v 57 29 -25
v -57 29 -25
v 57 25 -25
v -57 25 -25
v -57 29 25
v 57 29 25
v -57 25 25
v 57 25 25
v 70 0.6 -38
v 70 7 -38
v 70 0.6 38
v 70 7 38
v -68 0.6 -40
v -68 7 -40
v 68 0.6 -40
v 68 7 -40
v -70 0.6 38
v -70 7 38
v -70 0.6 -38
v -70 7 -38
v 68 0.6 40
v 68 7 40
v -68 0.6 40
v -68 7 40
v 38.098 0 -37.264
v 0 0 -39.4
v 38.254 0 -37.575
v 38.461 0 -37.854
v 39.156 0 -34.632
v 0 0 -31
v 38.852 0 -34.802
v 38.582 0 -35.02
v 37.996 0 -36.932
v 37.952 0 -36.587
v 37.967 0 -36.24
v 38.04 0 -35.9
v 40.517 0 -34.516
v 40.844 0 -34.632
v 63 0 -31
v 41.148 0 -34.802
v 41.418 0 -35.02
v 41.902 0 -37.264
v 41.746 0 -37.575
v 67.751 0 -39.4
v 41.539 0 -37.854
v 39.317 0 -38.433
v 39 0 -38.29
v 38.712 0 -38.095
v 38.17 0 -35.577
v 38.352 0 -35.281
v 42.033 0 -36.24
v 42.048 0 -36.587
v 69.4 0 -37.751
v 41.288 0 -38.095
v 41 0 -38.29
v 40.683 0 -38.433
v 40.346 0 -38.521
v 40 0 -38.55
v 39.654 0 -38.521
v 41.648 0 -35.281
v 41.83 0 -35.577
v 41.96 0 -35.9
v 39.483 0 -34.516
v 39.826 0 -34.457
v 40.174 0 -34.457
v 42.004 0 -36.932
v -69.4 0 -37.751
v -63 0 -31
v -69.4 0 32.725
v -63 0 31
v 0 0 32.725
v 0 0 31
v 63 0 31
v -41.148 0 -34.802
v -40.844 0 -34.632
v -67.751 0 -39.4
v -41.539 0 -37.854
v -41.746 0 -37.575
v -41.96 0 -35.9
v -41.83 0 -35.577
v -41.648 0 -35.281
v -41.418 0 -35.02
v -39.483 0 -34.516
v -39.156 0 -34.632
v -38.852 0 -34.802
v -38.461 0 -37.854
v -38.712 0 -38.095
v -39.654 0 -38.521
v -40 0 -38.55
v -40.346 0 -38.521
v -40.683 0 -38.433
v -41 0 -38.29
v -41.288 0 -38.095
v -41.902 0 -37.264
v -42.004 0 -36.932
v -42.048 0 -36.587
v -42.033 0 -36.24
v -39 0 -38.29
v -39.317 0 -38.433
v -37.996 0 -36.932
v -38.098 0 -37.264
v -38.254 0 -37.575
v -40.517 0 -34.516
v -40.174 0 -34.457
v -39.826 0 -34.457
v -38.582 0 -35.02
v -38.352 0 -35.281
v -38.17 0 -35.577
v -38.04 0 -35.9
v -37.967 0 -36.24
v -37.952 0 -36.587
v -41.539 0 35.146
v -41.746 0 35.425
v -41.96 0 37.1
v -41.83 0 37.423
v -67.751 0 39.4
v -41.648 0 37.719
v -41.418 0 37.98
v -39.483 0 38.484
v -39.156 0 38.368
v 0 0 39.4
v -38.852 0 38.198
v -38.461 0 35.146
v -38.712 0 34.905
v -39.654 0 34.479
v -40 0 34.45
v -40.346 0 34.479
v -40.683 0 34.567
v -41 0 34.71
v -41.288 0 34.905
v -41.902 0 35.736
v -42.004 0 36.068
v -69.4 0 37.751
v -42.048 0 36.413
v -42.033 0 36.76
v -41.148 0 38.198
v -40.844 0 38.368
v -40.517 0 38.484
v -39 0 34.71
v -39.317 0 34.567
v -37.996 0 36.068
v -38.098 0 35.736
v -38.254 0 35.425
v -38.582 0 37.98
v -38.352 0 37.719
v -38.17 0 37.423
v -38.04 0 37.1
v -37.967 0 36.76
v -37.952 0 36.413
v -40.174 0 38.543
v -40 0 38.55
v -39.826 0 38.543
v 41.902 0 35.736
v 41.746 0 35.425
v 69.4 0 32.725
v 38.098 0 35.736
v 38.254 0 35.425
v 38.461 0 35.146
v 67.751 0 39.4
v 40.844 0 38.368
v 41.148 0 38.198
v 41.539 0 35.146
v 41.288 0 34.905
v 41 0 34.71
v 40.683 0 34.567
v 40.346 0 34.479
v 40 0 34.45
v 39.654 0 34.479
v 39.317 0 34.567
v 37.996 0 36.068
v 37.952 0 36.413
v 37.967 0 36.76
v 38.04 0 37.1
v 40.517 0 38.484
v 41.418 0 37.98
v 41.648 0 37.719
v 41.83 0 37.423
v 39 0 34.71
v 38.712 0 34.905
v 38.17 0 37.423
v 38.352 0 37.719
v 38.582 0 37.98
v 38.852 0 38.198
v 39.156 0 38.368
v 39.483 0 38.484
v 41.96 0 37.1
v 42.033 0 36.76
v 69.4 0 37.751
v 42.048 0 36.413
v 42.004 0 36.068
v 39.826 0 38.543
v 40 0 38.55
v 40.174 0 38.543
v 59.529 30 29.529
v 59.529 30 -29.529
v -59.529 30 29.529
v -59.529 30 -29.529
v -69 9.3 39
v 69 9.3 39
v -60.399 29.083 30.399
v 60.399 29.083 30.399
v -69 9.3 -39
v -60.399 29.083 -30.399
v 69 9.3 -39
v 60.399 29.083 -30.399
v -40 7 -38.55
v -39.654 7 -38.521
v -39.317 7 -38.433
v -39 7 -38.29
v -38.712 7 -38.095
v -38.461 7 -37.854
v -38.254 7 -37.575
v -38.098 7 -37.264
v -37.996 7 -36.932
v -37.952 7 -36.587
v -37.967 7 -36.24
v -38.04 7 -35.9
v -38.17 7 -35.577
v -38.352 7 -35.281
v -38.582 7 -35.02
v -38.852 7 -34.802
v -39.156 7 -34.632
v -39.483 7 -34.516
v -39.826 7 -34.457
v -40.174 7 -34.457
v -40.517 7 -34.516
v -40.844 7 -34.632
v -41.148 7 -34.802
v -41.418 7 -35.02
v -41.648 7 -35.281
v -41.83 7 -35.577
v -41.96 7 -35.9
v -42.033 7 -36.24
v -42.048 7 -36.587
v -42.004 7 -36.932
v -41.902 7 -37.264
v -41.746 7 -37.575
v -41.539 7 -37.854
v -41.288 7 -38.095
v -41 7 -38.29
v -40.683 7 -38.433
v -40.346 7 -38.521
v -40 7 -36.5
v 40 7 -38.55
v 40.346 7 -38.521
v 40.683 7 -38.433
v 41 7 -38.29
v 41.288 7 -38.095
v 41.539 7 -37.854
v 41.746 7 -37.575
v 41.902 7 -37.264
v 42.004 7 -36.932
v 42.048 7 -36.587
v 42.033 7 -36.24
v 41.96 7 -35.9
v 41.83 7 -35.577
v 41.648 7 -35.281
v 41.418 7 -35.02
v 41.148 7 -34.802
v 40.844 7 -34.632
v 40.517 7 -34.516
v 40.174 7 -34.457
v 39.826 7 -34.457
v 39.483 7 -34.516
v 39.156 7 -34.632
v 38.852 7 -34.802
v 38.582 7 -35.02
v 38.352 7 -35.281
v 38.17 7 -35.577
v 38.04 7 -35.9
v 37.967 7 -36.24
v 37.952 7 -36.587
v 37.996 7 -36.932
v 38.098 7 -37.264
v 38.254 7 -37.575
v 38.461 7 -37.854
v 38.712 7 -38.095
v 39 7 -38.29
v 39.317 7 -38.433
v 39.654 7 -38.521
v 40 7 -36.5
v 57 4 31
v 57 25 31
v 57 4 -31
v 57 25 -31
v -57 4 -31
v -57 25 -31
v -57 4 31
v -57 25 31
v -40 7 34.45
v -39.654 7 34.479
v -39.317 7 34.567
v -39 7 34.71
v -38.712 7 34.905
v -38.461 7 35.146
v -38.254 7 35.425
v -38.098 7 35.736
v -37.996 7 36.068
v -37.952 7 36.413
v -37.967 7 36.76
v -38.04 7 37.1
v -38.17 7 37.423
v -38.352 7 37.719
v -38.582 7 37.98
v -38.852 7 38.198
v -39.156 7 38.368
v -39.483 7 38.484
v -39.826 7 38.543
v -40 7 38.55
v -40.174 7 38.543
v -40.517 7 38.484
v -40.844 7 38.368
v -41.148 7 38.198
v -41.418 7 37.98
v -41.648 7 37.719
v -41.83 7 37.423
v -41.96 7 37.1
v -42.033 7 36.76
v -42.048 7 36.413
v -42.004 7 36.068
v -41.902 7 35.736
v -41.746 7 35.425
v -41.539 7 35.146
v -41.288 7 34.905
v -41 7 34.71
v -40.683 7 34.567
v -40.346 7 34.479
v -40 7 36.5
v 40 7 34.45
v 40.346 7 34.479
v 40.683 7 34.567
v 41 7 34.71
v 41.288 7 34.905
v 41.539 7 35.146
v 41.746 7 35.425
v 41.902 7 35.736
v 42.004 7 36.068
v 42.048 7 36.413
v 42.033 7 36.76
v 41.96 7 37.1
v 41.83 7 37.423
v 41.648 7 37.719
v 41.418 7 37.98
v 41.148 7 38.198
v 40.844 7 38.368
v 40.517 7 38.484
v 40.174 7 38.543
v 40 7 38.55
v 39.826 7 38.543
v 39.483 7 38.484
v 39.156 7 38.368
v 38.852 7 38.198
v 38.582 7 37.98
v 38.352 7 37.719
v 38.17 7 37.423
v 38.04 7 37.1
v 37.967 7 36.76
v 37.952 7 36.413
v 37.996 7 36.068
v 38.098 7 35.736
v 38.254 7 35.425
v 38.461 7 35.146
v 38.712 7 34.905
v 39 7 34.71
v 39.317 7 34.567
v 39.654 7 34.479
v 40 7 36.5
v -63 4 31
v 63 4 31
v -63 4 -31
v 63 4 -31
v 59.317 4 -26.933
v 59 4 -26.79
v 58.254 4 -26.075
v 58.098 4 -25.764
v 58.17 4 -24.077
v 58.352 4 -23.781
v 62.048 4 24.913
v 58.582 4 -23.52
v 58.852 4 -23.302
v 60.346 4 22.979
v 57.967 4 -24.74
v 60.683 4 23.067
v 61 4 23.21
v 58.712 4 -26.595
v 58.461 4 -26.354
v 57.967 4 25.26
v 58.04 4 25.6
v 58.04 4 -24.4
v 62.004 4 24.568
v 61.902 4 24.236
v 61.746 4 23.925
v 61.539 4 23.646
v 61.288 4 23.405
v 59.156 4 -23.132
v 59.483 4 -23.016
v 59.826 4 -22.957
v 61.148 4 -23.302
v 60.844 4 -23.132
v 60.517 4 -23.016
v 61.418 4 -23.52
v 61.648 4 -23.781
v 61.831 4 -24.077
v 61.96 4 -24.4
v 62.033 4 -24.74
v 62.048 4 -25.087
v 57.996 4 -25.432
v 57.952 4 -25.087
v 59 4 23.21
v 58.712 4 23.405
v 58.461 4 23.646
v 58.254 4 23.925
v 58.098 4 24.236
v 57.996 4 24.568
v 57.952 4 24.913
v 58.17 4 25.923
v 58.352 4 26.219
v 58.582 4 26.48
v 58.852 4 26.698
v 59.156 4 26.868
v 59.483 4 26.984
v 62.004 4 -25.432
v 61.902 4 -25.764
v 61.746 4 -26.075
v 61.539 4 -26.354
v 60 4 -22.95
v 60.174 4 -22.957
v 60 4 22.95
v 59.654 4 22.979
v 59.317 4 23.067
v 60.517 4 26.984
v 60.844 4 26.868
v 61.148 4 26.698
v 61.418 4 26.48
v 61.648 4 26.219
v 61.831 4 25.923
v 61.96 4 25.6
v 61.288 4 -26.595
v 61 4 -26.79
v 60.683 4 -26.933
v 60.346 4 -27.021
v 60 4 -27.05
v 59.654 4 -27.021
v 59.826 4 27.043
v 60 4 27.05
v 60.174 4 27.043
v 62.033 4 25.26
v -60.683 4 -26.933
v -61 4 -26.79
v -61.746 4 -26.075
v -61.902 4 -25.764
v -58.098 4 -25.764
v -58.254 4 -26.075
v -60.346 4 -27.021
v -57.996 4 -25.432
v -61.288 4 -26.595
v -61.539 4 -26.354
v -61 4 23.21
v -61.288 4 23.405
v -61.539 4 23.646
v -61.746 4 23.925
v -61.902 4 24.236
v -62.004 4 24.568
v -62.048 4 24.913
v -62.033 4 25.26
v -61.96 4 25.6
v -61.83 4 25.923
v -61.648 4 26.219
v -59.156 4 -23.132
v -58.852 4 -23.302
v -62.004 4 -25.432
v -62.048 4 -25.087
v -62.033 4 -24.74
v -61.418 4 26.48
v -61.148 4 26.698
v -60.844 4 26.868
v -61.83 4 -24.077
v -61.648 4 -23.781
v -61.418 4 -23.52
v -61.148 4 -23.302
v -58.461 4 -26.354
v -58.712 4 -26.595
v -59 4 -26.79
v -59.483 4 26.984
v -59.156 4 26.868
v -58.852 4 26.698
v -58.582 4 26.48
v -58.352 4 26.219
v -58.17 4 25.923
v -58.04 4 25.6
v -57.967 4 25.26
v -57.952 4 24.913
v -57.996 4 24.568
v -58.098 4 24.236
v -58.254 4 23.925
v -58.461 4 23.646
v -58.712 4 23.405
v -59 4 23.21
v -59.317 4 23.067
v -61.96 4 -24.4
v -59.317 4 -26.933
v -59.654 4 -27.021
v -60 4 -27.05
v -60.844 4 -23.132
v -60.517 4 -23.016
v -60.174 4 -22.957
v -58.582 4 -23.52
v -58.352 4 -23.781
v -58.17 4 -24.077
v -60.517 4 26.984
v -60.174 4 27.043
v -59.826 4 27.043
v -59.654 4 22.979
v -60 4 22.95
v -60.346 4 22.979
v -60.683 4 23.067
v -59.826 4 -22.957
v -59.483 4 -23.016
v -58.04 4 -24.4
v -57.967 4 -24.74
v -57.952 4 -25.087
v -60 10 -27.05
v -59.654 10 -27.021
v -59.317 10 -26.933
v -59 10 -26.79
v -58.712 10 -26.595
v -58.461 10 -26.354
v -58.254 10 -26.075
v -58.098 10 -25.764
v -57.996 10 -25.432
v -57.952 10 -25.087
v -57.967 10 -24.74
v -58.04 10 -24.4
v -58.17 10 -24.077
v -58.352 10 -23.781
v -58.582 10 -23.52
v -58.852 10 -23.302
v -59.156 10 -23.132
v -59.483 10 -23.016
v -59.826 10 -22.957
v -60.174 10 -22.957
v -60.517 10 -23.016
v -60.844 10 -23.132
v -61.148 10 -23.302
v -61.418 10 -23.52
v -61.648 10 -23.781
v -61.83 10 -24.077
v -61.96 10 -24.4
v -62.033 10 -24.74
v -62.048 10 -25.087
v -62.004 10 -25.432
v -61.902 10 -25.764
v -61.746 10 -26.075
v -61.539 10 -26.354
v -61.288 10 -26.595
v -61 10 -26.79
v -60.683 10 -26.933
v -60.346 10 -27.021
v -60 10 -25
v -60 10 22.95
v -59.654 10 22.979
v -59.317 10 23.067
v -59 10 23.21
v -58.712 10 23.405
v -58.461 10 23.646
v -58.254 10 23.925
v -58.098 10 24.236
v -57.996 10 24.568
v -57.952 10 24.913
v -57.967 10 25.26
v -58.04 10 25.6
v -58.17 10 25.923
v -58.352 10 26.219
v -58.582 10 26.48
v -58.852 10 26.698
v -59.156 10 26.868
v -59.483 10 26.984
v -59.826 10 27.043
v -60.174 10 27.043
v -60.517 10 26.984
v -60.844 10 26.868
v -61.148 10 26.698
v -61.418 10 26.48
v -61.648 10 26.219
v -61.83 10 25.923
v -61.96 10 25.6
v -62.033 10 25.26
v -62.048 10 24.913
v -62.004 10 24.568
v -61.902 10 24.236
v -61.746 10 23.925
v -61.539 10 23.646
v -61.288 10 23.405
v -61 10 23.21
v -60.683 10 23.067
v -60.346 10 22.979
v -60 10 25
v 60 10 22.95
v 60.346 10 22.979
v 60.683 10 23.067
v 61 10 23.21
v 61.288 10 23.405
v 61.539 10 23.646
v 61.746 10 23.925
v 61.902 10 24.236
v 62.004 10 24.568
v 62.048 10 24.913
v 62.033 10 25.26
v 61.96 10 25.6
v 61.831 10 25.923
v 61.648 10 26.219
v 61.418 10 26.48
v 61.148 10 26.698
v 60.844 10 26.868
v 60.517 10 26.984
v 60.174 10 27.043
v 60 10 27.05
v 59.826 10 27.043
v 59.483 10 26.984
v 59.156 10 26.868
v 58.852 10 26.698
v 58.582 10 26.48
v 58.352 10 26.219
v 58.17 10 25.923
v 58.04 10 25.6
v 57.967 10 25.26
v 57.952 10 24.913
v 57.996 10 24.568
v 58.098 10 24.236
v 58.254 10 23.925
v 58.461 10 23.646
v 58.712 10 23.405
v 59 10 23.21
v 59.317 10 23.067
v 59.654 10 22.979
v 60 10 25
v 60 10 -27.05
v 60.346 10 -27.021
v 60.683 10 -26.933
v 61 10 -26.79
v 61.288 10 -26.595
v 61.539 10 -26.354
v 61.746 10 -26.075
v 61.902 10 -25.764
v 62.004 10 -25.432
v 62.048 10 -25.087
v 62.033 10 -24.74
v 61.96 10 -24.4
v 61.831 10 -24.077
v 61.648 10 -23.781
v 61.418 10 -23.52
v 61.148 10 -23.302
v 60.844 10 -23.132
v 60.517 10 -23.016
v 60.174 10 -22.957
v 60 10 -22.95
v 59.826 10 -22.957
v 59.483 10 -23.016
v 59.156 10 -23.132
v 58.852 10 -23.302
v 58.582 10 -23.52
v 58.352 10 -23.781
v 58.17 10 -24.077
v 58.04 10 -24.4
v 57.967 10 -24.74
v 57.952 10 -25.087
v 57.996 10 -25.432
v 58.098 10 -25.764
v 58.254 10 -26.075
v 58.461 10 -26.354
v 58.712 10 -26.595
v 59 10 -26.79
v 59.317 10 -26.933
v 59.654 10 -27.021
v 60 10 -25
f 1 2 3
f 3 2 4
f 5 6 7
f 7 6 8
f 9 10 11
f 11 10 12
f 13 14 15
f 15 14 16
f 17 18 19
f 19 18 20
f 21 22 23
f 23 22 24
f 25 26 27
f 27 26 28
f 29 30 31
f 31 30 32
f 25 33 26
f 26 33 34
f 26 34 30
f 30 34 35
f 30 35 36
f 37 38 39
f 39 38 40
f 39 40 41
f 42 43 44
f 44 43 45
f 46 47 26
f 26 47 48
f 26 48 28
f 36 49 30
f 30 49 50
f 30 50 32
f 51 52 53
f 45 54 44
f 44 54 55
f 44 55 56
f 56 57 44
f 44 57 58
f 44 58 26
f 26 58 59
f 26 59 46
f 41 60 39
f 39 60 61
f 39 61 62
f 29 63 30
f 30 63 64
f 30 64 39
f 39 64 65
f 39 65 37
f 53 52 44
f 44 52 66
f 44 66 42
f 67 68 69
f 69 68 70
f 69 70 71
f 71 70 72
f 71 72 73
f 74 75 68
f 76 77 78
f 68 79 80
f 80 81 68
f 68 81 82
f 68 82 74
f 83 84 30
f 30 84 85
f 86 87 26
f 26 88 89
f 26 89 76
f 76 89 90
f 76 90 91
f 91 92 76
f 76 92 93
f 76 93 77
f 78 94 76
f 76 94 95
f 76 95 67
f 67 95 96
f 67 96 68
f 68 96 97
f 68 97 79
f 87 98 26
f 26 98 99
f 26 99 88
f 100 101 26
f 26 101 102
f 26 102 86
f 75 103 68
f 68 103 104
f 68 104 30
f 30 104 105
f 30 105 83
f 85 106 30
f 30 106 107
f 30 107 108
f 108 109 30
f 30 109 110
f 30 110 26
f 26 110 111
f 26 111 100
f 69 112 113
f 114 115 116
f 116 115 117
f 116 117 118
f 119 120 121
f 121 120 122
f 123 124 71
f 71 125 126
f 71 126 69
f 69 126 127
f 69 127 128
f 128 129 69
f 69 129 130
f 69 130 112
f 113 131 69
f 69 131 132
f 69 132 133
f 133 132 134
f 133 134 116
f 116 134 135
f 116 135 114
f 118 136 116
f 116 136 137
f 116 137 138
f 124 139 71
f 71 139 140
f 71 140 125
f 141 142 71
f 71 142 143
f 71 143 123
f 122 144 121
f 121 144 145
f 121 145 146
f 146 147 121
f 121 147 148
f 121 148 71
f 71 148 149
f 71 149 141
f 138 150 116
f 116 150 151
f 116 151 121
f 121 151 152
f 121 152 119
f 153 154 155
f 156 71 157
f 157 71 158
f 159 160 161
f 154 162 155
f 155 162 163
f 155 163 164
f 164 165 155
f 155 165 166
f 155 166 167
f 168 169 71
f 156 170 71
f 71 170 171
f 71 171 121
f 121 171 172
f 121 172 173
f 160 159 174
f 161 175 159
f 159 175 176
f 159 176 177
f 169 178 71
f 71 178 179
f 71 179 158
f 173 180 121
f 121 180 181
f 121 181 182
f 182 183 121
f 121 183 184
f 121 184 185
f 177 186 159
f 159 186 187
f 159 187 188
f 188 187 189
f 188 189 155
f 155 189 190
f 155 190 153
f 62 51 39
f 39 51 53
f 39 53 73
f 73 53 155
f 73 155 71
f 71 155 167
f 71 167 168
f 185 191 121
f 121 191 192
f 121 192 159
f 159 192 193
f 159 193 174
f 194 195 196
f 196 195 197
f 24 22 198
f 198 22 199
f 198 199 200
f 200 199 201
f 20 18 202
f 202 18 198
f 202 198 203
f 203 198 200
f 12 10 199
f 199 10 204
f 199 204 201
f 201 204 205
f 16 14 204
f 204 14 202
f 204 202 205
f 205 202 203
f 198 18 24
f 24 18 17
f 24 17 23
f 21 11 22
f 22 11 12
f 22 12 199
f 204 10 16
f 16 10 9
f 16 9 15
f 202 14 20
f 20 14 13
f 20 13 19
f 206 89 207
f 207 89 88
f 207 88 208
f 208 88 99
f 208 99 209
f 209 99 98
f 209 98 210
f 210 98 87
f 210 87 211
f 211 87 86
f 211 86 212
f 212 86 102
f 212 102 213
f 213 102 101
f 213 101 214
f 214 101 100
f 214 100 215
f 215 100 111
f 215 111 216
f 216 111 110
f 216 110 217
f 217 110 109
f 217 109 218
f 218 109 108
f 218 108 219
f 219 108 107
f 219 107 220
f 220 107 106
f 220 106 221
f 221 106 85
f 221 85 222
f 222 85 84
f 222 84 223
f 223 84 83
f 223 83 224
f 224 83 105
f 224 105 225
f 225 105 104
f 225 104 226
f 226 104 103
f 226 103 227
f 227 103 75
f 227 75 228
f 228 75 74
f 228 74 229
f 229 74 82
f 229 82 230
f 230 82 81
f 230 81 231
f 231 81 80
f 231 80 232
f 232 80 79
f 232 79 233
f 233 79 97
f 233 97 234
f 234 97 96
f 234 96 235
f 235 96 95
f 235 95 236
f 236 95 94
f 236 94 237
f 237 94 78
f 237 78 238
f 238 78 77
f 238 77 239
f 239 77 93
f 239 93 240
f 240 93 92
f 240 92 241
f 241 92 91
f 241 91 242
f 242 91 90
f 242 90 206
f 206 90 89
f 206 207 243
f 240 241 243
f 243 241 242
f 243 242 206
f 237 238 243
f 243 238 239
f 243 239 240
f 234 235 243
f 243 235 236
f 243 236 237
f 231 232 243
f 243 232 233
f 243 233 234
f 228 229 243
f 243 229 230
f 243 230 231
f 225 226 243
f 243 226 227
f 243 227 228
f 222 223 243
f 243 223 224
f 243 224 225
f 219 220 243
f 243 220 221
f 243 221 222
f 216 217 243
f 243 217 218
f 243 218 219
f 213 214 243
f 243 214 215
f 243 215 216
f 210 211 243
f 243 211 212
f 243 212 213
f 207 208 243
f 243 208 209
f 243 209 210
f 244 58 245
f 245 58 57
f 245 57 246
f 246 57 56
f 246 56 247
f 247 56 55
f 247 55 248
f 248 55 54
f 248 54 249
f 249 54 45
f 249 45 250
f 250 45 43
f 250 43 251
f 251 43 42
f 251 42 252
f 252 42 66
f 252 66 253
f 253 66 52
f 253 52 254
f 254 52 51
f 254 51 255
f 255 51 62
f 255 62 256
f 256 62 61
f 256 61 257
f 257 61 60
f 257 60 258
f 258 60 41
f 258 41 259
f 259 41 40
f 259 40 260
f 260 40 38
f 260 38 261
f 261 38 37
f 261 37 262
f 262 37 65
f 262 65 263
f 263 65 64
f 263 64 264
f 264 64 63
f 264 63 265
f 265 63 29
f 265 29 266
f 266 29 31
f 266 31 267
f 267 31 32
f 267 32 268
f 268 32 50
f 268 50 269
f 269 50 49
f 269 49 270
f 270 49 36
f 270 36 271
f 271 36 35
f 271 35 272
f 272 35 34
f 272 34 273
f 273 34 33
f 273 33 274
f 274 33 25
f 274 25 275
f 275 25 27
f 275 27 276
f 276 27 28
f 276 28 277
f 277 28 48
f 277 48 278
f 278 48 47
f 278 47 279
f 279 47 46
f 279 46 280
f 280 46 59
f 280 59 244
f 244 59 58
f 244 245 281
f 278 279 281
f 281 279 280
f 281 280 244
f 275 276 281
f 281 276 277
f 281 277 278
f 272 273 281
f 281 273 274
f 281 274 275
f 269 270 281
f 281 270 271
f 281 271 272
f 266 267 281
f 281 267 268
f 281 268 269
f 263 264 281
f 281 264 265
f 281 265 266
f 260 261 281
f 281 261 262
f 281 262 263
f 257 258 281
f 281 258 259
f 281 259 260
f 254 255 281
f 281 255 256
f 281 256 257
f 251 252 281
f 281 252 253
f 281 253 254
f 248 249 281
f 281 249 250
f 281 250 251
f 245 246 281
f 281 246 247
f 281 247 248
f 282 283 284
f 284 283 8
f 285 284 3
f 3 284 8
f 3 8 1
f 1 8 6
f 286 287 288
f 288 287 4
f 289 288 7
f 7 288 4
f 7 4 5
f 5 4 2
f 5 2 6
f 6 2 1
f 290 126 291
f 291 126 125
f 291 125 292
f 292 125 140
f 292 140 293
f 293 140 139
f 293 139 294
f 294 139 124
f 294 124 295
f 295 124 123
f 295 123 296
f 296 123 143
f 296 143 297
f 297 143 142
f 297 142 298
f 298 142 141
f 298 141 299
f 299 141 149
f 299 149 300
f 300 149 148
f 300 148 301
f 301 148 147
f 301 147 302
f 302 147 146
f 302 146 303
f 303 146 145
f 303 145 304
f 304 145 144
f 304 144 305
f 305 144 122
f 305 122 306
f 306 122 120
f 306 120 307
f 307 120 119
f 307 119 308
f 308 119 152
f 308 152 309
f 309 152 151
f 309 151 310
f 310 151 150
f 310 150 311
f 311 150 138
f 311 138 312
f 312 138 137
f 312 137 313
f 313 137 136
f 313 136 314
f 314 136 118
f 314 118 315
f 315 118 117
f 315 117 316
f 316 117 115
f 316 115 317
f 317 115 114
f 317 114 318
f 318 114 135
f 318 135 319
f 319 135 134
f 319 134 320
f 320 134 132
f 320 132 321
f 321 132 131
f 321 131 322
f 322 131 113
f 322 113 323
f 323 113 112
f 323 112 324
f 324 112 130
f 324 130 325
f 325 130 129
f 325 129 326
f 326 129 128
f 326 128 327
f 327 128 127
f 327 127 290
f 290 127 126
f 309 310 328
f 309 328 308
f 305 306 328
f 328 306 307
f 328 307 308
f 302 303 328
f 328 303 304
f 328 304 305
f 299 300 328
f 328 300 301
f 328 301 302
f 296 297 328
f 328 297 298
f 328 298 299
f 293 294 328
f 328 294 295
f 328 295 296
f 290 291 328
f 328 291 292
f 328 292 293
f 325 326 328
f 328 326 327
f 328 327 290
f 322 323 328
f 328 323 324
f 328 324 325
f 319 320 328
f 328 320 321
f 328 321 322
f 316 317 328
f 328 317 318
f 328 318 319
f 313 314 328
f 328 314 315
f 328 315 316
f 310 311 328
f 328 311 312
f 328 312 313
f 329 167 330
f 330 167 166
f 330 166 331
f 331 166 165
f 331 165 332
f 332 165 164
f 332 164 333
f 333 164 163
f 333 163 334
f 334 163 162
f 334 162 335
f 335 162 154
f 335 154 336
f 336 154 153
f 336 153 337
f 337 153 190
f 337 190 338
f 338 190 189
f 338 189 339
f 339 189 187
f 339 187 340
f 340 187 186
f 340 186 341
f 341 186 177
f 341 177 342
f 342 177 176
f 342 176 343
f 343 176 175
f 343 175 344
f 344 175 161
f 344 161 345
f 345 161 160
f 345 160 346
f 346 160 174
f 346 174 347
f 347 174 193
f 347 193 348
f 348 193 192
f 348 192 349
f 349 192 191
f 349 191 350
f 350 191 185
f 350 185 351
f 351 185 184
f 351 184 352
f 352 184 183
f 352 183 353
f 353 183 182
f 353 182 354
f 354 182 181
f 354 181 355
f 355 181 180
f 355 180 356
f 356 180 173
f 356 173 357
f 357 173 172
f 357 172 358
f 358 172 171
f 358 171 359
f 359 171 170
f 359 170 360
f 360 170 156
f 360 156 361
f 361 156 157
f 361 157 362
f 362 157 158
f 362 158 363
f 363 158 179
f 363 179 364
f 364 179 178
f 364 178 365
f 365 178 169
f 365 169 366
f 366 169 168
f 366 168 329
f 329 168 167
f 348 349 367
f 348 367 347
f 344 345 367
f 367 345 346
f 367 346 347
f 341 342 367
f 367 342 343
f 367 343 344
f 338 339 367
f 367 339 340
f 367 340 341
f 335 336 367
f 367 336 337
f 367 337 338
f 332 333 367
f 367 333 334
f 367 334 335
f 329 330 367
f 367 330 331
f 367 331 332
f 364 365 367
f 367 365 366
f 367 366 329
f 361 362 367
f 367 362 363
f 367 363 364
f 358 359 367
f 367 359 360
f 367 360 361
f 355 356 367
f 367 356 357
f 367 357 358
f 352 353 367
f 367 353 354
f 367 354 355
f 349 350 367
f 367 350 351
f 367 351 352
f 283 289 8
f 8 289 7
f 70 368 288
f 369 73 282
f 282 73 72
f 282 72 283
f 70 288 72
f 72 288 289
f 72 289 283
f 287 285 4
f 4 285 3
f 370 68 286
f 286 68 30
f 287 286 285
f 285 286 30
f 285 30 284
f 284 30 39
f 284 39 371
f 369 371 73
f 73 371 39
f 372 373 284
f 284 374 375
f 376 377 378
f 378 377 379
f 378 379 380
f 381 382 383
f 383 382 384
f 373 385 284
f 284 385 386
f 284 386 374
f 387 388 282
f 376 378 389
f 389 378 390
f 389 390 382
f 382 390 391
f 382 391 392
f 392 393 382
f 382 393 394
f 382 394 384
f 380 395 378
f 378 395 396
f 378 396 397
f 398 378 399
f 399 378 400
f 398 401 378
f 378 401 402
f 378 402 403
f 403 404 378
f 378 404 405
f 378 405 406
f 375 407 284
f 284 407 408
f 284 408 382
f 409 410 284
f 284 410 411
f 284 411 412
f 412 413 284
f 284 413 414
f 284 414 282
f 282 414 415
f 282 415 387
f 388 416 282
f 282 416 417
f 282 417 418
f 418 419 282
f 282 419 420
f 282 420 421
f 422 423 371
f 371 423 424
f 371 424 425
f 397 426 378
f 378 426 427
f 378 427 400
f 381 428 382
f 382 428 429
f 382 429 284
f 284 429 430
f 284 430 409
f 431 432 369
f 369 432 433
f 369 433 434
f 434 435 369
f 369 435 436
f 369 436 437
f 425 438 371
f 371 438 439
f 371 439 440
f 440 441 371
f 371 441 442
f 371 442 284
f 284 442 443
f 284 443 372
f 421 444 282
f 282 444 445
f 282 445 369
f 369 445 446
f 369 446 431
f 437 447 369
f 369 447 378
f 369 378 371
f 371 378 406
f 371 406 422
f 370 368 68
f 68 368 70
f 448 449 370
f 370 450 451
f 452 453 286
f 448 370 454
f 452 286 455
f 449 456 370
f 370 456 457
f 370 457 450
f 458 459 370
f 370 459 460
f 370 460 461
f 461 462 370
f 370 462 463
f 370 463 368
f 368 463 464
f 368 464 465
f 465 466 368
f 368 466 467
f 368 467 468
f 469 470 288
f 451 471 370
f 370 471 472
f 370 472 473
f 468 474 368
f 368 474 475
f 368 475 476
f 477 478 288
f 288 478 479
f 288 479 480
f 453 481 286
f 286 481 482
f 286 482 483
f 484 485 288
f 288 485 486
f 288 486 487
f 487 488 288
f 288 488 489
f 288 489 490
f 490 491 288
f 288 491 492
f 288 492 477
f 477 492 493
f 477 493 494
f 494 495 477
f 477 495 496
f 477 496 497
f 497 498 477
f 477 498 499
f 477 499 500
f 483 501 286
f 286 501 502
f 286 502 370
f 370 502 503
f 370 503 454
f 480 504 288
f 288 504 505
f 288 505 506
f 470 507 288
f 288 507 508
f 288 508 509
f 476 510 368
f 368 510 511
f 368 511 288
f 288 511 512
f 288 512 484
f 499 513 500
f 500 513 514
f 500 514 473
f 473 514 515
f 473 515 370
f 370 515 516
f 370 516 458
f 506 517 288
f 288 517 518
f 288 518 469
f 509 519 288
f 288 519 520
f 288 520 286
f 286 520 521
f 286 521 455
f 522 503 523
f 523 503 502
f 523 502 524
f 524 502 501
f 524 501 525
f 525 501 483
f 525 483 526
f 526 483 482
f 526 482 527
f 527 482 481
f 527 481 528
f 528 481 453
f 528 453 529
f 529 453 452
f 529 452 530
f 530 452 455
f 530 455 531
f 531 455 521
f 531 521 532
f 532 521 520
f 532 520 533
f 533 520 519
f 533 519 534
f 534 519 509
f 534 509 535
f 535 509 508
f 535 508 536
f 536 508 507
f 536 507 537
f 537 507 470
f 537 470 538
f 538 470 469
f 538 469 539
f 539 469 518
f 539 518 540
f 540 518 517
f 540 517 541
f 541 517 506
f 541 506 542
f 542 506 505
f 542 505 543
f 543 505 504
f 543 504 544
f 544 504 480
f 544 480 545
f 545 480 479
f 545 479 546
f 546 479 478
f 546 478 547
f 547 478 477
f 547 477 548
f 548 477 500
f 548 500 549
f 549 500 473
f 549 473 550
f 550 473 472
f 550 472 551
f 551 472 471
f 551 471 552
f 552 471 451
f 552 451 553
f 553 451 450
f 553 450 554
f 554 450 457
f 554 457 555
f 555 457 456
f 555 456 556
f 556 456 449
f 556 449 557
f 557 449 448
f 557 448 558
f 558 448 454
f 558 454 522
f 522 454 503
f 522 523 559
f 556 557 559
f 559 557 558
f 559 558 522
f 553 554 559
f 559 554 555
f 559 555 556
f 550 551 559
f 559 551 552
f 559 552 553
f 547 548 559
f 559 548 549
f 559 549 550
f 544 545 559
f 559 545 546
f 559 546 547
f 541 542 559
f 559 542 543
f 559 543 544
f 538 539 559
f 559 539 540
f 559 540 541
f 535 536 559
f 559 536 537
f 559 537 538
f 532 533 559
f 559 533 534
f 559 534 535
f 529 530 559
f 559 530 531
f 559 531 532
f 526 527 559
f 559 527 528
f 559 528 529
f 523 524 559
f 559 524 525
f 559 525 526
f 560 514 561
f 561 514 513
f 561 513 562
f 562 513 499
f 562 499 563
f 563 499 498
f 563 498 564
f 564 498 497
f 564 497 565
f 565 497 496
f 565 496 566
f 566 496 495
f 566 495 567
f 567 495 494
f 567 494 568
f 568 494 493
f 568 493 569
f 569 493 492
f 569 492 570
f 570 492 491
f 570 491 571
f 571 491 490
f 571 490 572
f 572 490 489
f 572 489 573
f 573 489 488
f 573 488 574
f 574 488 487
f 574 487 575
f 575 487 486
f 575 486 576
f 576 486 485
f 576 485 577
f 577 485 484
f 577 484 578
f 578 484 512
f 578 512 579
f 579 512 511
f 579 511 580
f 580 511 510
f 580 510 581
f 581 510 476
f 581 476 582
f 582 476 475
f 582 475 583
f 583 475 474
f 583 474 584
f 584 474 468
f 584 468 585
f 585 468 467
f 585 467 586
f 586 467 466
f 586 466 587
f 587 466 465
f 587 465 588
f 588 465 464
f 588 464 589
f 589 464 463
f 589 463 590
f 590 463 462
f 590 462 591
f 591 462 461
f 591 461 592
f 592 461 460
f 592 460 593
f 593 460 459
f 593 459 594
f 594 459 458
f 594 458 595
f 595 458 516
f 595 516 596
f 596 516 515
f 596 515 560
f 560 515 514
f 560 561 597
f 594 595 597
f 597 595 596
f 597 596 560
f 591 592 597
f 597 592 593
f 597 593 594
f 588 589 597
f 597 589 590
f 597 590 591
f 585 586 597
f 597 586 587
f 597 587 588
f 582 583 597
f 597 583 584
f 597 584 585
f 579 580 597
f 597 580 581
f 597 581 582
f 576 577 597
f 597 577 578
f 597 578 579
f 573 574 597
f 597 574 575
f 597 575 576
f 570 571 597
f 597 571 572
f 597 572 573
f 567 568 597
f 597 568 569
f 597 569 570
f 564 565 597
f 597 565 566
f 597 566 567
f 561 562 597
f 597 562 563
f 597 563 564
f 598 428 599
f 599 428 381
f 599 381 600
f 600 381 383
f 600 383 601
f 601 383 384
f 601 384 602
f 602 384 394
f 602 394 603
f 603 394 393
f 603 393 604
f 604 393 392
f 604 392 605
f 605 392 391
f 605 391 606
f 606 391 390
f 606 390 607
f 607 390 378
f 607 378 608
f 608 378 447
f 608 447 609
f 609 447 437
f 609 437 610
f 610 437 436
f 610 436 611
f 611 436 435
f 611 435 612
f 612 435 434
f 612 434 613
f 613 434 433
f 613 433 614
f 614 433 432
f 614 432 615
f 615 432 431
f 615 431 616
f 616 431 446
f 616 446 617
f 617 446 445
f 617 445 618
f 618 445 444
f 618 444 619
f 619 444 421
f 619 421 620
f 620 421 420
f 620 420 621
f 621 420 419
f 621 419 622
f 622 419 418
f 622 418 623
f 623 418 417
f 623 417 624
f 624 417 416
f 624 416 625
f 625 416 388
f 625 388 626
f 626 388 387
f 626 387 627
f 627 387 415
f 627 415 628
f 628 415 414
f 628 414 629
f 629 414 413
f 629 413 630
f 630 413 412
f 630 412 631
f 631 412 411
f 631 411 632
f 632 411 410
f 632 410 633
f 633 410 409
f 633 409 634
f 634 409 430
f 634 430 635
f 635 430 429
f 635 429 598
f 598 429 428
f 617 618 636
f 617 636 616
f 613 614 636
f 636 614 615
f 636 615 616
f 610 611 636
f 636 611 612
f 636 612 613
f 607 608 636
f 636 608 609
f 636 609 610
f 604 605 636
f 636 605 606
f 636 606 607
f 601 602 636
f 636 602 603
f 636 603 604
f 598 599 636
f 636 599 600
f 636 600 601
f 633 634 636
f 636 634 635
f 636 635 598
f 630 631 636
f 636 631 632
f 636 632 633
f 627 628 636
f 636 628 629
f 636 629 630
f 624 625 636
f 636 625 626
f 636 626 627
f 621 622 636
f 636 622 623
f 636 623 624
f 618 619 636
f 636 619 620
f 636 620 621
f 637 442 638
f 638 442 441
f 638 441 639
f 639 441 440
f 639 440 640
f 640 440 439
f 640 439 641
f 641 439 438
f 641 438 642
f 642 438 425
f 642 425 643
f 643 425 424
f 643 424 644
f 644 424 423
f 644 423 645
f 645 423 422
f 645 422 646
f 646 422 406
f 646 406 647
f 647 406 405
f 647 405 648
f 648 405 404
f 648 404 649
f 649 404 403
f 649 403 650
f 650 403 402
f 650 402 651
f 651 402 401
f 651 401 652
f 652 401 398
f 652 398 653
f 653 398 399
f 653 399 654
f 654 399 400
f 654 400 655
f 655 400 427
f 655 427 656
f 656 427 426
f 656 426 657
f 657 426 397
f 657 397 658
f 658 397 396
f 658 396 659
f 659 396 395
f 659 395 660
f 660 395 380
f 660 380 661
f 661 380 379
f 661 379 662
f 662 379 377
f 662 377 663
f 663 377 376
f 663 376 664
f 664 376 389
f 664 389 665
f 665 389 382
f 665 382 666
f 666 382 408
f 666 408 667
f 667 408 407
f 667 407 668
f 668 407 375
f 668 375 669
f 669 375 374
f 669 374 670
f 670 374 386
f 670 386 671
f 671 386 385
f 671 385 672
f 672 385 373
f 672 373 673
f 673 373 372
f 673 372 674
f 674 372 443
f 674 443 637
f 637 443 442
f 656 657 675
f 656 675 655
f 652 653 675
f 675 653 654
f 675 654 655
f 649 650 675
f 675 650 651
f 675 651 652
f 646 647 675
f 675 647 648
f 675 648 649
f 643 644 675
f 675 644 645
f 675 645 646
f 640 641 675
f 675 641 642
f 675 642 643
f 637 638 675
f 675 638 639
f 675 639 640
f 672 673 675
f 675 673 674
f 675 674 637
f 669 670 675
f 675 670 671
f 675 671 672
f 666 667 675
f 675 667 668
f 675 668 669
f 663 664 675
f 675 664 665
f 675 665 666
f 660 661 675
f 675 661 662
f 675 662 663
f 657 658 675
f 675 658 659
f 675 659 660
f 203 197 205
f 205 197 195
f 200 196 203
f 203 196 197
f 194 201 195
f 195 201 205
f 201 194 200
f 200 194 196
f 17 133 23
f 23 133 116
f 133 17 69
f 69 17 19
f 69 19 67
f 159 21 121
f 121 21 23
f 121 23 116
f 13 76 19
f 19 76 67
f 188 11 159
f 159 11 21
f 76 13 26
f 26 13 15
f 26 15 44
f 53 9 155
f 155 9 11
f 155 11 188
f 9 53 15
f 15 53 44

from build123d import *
from OCP.BRepFilletAPI import BRepFilletAPI_MakeChamfer

# Parameters (mm, degrees)
SKETCH1_W           = 140
SKETCH1_H           = 80
BOSS_EXTRUDE1_DEPTH = 7
CHAMFER1_SIZE       = 2
SKETCH4_R           = 2.05
CUT_EXTRUDE1_DEPTH  = 7
SKETCH5_W           = 114
SKETCH5_H           = 50
CUT_EXTRUDE2_DEPTH  = 29
SKETCH6_W           = 114
SKETCH6_H           = 62
CUT_EXTRUDE3_DEPTH  = 25
SKETCH7_W           = 6
SKETCH7_H           = 62
CUT_EXTRUDE4_DEPTH  = 4
SKETCH8_R           = 2.05
CUT_EXTRUDE5_DEPTH  = 6
CHAMFER2_SIZE       = 1
CHAMFER2_SIZE2      = 0.471497246
CHAMFER3_SIZE       = 0.6


with BuildPart() as part:
    # Sketch1 → Boss-Extrude1 (new body)
    with BuildSketch(Plane(origin=(0, 0, 0), x_dir=(1, 0, 0), z_dir=(0, 1, 0))):
        Rectangle(SKETCH1_W, SKETCH1_H)
    extrude(amount=BOSS_EXTRUDE1_DEPTH)

    # Sketch3 → Loft2 section 0
    with BuildSketch(Plane(origin=(0, 7, 0), x_dir=(1, 0, 0), z_dir=(0, 1, 0))):
        with BuildLine():
            Line((70, -40), (70, 40))
            Line((70, 40), (-70, 40))
            Line((-70, 40), (-70, -40))
            Line((-70, -40), (70, -40))
        make_face()
    # Sketch2 → Loft2 section 1
    with BuildSketch(Plane(origin=(0, 30, 0), x_dir=(1, 0, 0), z_dir=(0, 1, 0))):
        with BuildLine():
            Line((-60, -30), (60, -30))
            Line((60, -30), (60, 30))
            Line((60, 30), (-60, 30))
            Line((-60, 30), (-60, -30))
        make_face()
    loft()

    # Chamfer1
    chamfer1_edges = [part.edges().sort_by_distance(p)[0] for p in [
        (-70, 3.5, 40),
        (70, 3.5, 40),
        (70, 3.5, -40),
        (-70, 3.5, -40),
    ]]
    chamfer(chamfer1_edges, length=CHAMFER1_SIZE)

    # Sketch4 → Cut-Extrude1 (cut)
    with BuildSketch(Plane.XZ):
        with Locations(Location((40, -36.5, 0), (0, 0, 270))):
            Circle(SKETCH4_R)
        with Locations(Location((-40, -36.5, 0), (0, 0, 270))):
            Circle(SKETCH4_R)
    cut_extrude1 = extrude(amount=-CUT_EXTRUDE1_DEPTH, mode=Mode.SUBTRACT)

    # Sketch5 → Cut-Extrude2 (cut)
    with BuildSketch(Plane.XZ):
        Rectangle(SKETCH5_W, SKETCH5_H)
    extrude(amount=-CUT_EXTRUDE2_DEPTH, mode=Mode.SUBTRACT)

    # Mirror1: Cut-Extrude1 across plane
    add(cut_extrude1.mirror(Plane.XY), mode=Mode.SUBTRACT)

    # Sketch6 → Cut-Extrude3 (cut)
    with BuildSketch(Plane.XZ):
        Rectangle(SKETCH6_W, SKETCH6_H)
    extrude(amount=-CUT_EXTRUDE3_DEPTH, mode=Mode.SUBTRACT)

    # Sketch7 → Cut-Extrude4 (cut)
    with BuildSketch(Plane.XZ):
        with Locations((-60, 0)):
            Rectangle(SKETCH7_W, SKETCH7_H)
        with Locations((60, 0)):
            Rectangle(SKETCH7_W, SKETCH7_H)
    extrude(amount=-CUT_EXTRUDE4_DEPTH, mode=Mode.SUBTRACT)

    # Sketch8 → Cut-Extrude5 (cut)
    with BuildSketch(Plane.XZ.offset(-4)):
        with Locations(Location((-60, 25, 0), (0, 0, 270))):
            Circle(SKETCH8_R)
        with Locations(Location((-60, -25, 0), (0, 0, 270))):
            Circle(SKETCH8_R)
        with Locations(Location((60, -25, 0), (0, 0, 90))):
            Circle(SKETCH8_R)
        with Locations(Location((60, 25, 0), (0, 0, 90))):
            Circle(SKETCH8_R)
    extrude(amount=-CUT_EXTRUDE5_DEPTH, mode=Mode.SUBTRACT)

    # Chamfer2: one chamfer whose edges measure the first distance from different faces: ONE call of the kernel's chamfer builder (chamfer() names one face for all edges)
    chamfer2_edges_1 = [part.edges().sort_by_distance(p)[0] for p in [
        (60, 30, 0),
    ]]
    chamfer2_side_1 = [part.faces().sort_by_distance(p)[0] for p in [
        (65.225405922, 17.98156638, 0),
    ]]
    chamfer2_edges_2 = [part.edges().sort_by_distance(p)[0] for p in [
        (0, 30, -30),
    ]]
    chamfer2_side_2 = [part.faces().sort_by_distance(p)[0] for p in [
        (0, 18.221212121, -35.121212121),
    ]]
    chamfer2_edges_3 = [part.edges().sort_by_distance(p)[0] for p in [
        (-60, 30, 0),
    ]]
    chamfer2_side_3 = [part.faces().sort_by_distance(p)[0] for p in [
        (-65.225405922, 17.98156638, 0),
    ]]
    chamfer2_edges_4 = [part.edges().sort_by_distance(p)[0] for p in [
        (0, 30, 30),
    ]]
    chamfer2_side_4 = [part.faces().sort_by_distance(p)[0] for p in [
        (0, 18.221212121, 35.121212121),
    ]]
    chamfer2 = BRepFilletAPI_MakeChamfer(part.part.solid().wrapped)
    for e in chamfer2_edges_1:
        chamfer2.Add(CHAMFER2_SIZE, CHAMFER2_SIZE2, e.wrapped, chamfer2_side_1[0].wrapped)  # the first distance lies on this face
    for e in chamfer2_edges_2:
        chamfer2.Add(CHAMFER2_SIZE, CHAMFER2_SIZE2, e.wrapped, chamfer2_side_2[0].wrapped)  # the first distance lies on this face
    for e in chamfer2_edges_3:
        chamfer2.Add(CHAMFER2_SIZE, CHAMFER2_SIZE2, e.wrapped, chamfer2_side_3[0].wrapped)  # the first distance lies on this face
    for e in chamfer2_edges_4:
        chamfer2.Add(CHAMFER2_SIZE, CHAMFER2_SIZE2, e.wrapped, chamfer2_side_4[0].wrapped)  # the first distance lies on this face
    add(Compound.cast(chamfer2.Shape()), mode=Mode.REPLACE)

    # Chamfer3
    chamfer3_edges = [part.edges().sort_by_distance(p)[0] for p in [
        (0, 0, 40),
        (70, 0, 0),
        (-70, 0, 0),
        (0, 0, -40),
        (-69, 0, -39),
        (69, 0, -39),
        (69, 0, 39),
        (-69, 0, 39),
    ]]
    chamfer(chamfer3_edges, length=CHAMFER3_SIZE)


solid = part.part
